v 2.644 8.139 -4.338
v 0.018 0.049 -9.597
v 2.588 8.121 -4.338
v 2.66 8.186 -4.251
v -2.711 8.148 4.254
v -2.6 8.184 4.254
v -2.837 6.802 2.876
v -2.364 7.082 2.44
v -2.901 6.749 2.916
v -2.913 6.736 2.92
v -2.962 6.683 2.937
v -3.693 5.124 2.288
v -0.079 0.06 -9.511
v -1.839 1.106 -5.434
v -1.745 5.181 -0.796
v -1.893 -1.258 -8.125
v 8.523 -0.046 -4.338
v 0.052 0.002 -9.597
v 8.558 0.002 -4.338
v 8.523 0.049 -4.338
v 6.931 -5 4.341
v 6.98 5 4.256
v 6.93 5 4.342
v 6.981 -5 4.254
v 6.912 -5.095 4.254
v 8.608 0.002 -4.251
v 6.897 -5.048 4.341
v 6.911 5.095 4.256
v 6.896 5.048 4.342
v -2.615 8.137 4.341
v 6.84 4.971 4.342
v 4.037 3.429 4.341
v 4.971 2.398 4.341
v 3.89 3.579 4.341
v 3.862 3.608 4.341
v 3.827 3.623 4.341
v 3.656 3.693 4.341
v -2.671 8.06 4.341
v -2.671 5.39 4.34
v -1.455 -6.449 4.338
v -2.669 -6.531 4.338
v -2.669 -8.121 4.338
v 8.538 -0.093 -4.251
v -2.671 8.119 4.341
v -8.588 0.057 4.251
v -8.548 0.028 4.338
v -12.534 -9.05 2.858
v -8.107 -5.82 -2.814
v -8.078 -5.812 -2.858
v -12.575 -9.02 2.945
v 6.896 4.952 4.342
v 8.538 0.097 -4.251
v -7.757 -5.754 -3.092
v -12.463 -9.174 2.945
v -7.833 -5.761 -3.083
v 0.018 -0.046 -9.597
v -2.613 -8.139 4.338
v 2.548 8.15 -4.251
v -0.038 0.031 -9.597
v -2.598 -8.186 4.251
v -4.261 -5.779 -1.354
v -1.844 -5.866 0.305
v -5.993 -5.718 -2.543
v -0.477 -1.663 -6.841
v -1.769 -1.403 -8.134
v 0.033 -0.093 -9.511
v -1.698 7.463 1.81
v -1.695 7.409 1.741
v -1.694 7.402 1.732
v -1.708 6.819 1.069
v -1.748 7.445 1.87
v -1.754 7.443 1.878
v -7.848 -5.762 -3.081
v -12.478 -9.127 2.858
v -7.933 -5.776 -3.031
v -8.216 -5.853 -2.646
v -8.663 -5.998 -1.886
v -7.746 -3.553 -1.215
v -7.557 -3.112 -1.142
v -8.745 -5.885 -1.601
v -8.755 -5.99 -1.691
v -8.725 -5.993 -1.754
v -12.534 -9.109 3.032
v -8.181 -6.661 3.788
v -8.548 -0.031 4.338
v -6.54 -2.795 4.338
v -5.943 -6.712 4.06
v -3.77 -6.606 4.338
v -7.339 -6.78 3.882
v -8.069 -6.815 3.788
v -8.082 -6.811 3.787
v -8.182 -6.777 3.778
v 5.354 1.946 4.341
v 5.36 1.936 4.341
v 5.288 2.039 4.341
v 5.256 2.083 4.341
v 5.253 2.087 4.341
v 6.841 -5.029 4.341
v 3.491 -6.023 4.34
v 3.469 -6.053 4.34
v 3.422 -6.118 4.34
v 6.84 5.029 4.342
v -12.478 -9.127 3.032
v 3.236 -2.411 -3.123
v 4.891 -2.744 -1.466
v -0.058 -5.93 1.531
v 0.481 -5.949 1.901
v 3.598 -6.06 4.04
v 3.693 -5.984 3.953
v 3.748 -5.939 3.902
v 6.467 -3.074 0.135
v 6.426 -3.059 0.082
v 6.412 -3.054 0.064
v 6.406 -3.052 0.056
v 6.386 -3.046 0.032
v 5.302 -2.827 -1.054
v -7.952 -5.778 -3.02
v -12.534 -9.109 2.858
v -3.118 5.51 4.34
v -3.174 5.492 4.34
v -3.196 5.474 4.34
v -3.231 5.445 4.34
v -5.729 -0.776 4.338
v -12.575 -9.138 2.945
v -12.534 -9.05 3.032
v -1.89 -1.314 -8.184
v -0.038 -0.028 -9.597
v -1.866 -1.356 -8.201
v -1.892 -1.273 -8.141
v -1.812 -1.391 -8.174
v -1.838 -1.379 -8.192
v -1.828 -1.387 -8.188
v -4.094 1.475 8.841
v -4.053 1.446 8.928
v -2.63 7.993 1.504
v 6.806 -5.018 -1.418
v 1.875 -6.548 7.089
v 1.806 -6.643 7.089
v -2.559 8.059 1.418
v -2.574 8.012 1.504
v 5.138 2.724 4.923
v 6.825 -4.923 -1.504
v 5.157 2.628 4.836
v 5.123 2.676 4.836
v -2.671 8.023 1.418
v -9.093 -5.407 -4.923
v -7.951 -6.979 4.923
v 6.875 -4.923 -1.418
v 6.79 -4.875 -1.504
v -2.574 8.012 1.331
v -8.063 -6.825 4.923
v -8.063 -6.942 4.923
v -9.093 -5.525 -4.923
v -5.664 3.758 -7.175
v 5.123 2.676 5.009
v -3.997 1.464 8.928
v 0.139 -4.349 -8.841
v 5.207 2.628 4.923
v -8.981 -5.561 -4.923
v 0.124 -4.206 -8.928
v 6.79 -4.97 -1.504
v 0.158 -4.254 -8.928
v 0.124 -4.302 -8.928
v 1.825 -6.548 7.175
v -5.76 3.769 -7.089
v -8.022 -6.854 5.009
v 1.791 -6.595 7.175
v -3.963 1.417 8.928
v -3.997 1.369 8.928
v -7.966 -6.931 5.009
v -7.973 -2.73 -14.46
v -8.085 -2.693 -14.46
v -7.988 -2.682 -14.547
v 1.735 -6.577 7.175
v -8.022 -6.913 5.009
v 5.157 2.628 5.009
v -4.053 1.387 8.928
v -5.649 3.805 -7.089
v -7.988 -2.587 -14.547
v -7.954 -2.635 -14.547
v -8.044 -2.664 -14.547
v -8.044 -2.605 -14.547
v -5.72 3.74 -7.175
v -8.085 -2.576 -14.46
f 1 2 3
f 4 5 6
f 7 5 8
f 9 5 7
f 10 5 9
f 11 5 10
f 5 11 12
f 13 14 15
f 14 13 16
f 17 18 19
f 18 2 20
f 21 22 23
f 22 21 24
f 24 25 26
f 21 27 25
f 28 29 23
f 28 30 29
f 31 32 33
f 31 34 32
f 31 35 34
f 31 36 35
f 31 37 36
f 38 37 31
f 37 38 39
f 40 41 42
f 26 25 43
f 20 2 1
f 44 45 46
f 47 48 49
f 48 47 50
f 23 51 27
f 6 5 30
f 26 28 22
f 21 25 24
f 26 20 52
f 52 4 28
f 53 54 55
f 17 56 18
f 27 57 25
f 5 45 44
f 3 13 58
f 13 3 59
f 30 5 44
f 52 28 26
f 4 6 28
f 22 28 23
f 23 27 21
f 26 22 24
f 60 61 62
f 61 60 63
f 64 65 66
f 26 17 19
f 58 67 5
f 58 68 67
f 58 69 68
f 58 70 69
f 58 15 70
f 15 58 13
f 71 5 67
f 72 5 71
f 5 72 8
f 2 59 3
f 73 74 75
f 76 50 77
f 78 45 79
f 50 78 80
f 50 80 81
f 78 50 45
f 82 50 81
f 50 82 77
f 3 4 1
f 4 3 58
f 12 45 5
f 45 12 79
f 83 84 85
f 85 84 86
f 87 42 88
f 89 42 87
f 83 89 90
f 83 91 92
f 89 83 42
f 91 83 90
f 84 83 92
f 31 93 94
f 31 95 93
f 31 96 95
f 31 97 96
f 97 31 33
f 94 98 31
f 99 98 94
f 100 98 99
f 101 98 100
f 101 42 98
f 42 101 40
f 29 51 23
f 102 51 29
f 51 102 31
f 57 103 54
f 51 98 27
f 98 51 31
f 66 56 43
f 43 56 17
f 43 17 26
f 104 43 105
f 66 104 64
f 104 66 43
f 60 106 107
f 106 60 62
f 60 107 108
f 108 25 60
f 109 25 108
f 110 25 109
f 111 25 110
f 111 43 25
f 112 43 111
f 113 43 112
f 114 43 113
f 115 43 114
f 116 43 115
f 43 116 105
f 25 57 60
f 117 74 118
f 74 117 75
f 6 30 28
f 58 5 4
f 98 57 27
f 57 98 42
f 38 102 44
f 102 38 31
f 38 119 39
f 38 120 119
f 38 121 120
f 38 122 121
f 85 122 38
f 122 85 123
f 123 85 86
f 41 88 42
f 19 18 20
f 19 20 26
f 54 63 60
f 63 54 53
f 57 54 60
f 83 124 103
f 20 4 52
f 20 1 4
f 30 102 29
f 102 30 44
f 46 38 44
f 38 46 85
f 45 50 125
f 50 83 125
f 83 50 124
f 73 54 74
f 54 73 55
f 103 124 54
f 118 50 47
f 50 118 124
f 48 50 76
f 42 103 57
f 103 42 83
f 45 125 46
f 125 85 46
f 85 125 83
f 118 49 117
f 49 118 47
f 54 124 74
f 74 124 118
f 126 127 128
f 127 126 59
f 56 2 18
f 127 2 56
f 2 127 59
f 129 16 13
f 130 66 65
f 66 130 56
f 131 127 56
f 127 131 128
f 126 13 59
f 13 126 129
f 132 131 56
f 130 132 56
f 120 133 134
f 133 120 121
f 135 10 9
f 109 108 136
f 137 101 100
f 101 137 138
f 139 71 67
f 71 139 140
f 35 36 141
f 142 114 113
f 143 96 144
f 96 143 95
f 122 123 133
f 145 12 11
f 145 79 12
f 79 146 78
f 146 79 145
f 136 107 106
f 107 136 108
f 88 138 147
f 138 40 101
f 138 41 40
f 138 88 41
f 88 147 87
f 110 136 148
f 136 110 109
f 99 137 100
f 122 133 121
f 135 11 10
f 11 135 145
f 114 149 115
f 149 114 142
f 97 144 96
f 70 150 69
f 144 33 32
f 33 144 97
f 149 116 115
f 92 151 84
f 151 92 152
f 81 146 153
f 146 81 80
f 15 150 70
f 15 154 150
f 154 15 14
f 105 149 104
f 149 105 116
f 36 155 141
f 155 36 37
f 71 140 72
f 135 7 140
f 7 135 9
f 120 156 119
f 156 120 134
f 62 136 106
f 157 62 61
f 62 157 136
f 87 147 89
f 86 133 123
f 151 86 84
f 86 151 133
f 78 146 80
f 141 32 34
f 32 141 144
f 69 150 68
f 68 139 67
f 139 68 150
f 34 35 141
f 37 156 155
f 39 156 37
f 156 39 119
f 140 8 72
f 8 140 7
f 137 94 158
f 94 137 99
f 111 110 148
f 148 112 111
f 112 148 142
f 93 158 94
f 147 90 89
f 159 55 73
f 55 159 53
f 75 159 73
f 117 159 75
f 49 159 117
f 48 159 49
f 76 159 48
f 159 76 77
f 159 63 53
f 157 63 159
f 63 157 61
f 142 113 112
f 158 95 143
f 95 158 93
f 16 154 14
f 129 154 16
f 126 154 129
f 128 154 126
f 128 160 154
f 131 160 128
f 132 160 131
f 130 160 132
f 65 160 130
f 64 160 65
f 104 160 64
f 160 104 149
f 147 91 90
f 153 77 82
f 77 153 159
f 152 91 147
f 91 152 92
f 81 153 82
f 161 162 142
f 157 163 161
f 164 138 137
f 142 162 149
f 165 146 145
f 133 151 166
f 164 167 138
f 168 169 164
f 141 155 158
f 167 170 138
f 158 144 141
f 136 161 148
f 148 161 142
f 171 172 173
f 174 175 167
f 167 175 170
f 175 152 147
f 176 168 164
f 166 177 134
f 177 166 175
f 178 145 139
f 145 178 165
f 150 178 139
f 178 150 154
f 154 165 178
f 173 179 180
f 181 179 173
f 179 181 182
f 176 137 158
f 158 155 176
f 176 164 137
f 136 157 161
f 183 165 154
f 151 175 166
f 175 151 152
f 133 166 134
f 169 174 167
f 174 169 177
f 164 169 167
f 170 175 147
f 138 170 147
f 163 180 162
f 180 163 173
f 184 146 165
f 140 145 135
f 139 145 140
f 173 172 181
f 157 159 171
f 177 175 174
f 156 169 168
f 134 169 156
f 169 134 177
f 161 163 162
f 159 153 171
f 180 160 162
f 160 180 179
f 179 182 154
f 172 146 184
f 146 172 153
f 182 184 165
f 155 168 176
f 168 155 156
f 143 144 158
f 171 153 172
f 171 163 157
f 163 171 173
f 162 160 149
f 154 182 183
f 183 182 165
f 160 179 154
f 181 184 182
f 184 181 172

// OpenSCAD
// Auto-generated OpenSCAD file

    inner_points = 10*[[0.010822126776322105, -0.4253965348253418, -0.8841193748434077], [-0.9011876079860377, -0.546584266283201, -0.49226254200418296], [-0.5679521834680924, 0.3710392408495472, -0.708875678733561], [-0.7981668194007837, -0.6883484018941259, 0.4922625450168436], [-0.2589805762752483, 0.796397621522542, 0.14177512737898157], [0.6774959295154908, -0.4922625333758151, -0.14177512924090818], [-0.4012610459893345, 0.1416600510453211, 0.8841193748434077], [0.5107486887730253, 0.2628477825031803, 0.49226254200418296], [0.17751326425508, -0.6547757246295679, 0.708875678733561], [-0.8003688307481618, -0.2634563312038399, -1.446030934505191]];

    outer_points = 10*[[-0.6880381915718803, -0.49999998970608384, -0.42557250195458624], [-0.2628785942986316, -0.8091184366568306, 0.4251243315890725], [-0.8507501659543638, -0.00016416400980563553, 0.42512659922224816], [0.6881449121452123, -0.49999998970608384, 0.4253999146333339], [-0.26305127181358173, 0.8089155187812519, 0.4254035837408861], [0.0002222331138788114, 0.00016416400980563553, -0.9510564761622176], [0.6880381915718803, 0.49999998970608384, 0.42557250195458624], [0.2628785942986316, 0.8091184366568306, -0.4251243315890725], [0.8507501659543638, 0.00016416400980563553, -0.42512659922224816], [-1.2493737711519366, -0.9079276976139716, 0.2944951005790503]];

    // Convex hull for inner set (I)
    module inner_hull() {
        hull() {
            for (p = inner_points) {
                translate(p) sphere(r=0.1);
            }
        }
    }

    // Convex hull for outer set (O) minus inner hull (O \ I)
    module outer_minus_inner() {
        difference() {
            hull() {
                for (p = outer_points) {
                    translate(p) sphere(r=0.1);
                }
            }
            inner_hull(); // Subtract inner hull
        }
    }

    // Convex hull for outer set (O) minus all translated inner hulls
    module outer_minus_AllTranslationInner() {
        difference() {
            hull() {
                for (p = outer_points) {
                    translate(p) sphere(r=0.1);
                }
            }
            hull() {
                translate([0,0,50]) inner_hull();
                translate([0,0,-50]) inner_hull();
            }; // Subtract translated inner hulls
        }
    }

    // Difference between outer_minus_inner and outer_minus_AllTranslationInner
    module outer_minus_inner_diff() {
        difference() {
            // Outer minus inner
            difference() {
                hull() {
                    for (p = outer_points) {
                        translate(p) sphere(r=0.1);
                    }
                }
                inner_hull();
            }

            // Subtract Outer minus AllTranslationInner
            difference() {
                hull() {
                    for (p = outer_points) {
                        translate(p) sphere(r=0.1);
                    }
                }
                hull() {
                    translate([0,0,50]) inner_hull();
                    translate([0,0,-50]) inner_hull();
                };
            }
        }
    }

    // Rendering all with colors applied
    color([1, 0, 0, 0.5]) inner_hull(); // Transparent red
    color([0, 1, 0, 1]) outer_minus_AllTranslationInner(); // Opaque green
    color([1, 1, 0, 1]) outer_minus_inner_diff(); // Opaque yellow
    
